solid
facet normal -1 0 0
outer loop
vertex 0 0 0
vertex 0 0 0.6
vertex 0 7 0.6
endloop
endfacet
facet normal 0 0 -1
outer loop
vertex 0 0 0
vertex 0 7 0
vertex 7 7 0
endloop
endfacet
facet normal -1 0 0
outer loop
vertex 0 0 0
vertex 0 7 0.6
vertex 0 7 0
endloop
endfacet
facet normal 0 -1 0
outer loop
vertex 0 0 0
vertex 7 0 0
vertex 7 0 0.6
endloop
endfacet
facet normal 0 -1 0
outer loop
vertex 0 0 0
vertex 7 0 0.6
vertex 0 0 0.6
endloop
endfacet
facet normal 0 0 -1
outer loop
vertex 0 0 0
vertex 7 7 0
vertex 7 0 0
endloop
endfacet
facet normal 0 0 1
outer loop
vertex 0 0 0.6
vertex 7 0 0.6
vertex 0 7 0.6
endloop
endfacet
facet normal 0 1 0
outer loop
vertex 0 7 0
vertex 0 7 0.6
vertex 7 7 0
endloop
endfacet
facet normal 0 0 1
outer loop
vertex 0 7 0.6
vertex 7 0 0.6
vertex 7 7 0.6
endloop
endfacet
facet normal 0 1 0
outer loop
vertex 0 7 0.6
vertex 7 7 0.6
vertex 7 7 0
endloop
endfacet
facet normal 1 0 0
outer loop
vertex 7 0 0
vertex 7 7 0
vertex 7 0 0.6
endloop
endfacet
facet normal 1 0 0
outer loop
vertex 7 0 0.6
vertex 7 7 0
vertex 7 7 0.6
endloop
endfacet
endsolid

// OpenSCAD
/* Warning, this is a very basic generator with a lot of approximation 
input data : [UFBGA, C4B, 7x7x0.6mm, 136, , A, C04-21165A]
generated by com.zoubworld.electronics.cad.model3d.Basic
Date : Sun Feb 15 10:50:49 CET 2026
*/

//body
color("black")
translate([0,0,0])
cube([7.0,7.0,0.6], center=false);
